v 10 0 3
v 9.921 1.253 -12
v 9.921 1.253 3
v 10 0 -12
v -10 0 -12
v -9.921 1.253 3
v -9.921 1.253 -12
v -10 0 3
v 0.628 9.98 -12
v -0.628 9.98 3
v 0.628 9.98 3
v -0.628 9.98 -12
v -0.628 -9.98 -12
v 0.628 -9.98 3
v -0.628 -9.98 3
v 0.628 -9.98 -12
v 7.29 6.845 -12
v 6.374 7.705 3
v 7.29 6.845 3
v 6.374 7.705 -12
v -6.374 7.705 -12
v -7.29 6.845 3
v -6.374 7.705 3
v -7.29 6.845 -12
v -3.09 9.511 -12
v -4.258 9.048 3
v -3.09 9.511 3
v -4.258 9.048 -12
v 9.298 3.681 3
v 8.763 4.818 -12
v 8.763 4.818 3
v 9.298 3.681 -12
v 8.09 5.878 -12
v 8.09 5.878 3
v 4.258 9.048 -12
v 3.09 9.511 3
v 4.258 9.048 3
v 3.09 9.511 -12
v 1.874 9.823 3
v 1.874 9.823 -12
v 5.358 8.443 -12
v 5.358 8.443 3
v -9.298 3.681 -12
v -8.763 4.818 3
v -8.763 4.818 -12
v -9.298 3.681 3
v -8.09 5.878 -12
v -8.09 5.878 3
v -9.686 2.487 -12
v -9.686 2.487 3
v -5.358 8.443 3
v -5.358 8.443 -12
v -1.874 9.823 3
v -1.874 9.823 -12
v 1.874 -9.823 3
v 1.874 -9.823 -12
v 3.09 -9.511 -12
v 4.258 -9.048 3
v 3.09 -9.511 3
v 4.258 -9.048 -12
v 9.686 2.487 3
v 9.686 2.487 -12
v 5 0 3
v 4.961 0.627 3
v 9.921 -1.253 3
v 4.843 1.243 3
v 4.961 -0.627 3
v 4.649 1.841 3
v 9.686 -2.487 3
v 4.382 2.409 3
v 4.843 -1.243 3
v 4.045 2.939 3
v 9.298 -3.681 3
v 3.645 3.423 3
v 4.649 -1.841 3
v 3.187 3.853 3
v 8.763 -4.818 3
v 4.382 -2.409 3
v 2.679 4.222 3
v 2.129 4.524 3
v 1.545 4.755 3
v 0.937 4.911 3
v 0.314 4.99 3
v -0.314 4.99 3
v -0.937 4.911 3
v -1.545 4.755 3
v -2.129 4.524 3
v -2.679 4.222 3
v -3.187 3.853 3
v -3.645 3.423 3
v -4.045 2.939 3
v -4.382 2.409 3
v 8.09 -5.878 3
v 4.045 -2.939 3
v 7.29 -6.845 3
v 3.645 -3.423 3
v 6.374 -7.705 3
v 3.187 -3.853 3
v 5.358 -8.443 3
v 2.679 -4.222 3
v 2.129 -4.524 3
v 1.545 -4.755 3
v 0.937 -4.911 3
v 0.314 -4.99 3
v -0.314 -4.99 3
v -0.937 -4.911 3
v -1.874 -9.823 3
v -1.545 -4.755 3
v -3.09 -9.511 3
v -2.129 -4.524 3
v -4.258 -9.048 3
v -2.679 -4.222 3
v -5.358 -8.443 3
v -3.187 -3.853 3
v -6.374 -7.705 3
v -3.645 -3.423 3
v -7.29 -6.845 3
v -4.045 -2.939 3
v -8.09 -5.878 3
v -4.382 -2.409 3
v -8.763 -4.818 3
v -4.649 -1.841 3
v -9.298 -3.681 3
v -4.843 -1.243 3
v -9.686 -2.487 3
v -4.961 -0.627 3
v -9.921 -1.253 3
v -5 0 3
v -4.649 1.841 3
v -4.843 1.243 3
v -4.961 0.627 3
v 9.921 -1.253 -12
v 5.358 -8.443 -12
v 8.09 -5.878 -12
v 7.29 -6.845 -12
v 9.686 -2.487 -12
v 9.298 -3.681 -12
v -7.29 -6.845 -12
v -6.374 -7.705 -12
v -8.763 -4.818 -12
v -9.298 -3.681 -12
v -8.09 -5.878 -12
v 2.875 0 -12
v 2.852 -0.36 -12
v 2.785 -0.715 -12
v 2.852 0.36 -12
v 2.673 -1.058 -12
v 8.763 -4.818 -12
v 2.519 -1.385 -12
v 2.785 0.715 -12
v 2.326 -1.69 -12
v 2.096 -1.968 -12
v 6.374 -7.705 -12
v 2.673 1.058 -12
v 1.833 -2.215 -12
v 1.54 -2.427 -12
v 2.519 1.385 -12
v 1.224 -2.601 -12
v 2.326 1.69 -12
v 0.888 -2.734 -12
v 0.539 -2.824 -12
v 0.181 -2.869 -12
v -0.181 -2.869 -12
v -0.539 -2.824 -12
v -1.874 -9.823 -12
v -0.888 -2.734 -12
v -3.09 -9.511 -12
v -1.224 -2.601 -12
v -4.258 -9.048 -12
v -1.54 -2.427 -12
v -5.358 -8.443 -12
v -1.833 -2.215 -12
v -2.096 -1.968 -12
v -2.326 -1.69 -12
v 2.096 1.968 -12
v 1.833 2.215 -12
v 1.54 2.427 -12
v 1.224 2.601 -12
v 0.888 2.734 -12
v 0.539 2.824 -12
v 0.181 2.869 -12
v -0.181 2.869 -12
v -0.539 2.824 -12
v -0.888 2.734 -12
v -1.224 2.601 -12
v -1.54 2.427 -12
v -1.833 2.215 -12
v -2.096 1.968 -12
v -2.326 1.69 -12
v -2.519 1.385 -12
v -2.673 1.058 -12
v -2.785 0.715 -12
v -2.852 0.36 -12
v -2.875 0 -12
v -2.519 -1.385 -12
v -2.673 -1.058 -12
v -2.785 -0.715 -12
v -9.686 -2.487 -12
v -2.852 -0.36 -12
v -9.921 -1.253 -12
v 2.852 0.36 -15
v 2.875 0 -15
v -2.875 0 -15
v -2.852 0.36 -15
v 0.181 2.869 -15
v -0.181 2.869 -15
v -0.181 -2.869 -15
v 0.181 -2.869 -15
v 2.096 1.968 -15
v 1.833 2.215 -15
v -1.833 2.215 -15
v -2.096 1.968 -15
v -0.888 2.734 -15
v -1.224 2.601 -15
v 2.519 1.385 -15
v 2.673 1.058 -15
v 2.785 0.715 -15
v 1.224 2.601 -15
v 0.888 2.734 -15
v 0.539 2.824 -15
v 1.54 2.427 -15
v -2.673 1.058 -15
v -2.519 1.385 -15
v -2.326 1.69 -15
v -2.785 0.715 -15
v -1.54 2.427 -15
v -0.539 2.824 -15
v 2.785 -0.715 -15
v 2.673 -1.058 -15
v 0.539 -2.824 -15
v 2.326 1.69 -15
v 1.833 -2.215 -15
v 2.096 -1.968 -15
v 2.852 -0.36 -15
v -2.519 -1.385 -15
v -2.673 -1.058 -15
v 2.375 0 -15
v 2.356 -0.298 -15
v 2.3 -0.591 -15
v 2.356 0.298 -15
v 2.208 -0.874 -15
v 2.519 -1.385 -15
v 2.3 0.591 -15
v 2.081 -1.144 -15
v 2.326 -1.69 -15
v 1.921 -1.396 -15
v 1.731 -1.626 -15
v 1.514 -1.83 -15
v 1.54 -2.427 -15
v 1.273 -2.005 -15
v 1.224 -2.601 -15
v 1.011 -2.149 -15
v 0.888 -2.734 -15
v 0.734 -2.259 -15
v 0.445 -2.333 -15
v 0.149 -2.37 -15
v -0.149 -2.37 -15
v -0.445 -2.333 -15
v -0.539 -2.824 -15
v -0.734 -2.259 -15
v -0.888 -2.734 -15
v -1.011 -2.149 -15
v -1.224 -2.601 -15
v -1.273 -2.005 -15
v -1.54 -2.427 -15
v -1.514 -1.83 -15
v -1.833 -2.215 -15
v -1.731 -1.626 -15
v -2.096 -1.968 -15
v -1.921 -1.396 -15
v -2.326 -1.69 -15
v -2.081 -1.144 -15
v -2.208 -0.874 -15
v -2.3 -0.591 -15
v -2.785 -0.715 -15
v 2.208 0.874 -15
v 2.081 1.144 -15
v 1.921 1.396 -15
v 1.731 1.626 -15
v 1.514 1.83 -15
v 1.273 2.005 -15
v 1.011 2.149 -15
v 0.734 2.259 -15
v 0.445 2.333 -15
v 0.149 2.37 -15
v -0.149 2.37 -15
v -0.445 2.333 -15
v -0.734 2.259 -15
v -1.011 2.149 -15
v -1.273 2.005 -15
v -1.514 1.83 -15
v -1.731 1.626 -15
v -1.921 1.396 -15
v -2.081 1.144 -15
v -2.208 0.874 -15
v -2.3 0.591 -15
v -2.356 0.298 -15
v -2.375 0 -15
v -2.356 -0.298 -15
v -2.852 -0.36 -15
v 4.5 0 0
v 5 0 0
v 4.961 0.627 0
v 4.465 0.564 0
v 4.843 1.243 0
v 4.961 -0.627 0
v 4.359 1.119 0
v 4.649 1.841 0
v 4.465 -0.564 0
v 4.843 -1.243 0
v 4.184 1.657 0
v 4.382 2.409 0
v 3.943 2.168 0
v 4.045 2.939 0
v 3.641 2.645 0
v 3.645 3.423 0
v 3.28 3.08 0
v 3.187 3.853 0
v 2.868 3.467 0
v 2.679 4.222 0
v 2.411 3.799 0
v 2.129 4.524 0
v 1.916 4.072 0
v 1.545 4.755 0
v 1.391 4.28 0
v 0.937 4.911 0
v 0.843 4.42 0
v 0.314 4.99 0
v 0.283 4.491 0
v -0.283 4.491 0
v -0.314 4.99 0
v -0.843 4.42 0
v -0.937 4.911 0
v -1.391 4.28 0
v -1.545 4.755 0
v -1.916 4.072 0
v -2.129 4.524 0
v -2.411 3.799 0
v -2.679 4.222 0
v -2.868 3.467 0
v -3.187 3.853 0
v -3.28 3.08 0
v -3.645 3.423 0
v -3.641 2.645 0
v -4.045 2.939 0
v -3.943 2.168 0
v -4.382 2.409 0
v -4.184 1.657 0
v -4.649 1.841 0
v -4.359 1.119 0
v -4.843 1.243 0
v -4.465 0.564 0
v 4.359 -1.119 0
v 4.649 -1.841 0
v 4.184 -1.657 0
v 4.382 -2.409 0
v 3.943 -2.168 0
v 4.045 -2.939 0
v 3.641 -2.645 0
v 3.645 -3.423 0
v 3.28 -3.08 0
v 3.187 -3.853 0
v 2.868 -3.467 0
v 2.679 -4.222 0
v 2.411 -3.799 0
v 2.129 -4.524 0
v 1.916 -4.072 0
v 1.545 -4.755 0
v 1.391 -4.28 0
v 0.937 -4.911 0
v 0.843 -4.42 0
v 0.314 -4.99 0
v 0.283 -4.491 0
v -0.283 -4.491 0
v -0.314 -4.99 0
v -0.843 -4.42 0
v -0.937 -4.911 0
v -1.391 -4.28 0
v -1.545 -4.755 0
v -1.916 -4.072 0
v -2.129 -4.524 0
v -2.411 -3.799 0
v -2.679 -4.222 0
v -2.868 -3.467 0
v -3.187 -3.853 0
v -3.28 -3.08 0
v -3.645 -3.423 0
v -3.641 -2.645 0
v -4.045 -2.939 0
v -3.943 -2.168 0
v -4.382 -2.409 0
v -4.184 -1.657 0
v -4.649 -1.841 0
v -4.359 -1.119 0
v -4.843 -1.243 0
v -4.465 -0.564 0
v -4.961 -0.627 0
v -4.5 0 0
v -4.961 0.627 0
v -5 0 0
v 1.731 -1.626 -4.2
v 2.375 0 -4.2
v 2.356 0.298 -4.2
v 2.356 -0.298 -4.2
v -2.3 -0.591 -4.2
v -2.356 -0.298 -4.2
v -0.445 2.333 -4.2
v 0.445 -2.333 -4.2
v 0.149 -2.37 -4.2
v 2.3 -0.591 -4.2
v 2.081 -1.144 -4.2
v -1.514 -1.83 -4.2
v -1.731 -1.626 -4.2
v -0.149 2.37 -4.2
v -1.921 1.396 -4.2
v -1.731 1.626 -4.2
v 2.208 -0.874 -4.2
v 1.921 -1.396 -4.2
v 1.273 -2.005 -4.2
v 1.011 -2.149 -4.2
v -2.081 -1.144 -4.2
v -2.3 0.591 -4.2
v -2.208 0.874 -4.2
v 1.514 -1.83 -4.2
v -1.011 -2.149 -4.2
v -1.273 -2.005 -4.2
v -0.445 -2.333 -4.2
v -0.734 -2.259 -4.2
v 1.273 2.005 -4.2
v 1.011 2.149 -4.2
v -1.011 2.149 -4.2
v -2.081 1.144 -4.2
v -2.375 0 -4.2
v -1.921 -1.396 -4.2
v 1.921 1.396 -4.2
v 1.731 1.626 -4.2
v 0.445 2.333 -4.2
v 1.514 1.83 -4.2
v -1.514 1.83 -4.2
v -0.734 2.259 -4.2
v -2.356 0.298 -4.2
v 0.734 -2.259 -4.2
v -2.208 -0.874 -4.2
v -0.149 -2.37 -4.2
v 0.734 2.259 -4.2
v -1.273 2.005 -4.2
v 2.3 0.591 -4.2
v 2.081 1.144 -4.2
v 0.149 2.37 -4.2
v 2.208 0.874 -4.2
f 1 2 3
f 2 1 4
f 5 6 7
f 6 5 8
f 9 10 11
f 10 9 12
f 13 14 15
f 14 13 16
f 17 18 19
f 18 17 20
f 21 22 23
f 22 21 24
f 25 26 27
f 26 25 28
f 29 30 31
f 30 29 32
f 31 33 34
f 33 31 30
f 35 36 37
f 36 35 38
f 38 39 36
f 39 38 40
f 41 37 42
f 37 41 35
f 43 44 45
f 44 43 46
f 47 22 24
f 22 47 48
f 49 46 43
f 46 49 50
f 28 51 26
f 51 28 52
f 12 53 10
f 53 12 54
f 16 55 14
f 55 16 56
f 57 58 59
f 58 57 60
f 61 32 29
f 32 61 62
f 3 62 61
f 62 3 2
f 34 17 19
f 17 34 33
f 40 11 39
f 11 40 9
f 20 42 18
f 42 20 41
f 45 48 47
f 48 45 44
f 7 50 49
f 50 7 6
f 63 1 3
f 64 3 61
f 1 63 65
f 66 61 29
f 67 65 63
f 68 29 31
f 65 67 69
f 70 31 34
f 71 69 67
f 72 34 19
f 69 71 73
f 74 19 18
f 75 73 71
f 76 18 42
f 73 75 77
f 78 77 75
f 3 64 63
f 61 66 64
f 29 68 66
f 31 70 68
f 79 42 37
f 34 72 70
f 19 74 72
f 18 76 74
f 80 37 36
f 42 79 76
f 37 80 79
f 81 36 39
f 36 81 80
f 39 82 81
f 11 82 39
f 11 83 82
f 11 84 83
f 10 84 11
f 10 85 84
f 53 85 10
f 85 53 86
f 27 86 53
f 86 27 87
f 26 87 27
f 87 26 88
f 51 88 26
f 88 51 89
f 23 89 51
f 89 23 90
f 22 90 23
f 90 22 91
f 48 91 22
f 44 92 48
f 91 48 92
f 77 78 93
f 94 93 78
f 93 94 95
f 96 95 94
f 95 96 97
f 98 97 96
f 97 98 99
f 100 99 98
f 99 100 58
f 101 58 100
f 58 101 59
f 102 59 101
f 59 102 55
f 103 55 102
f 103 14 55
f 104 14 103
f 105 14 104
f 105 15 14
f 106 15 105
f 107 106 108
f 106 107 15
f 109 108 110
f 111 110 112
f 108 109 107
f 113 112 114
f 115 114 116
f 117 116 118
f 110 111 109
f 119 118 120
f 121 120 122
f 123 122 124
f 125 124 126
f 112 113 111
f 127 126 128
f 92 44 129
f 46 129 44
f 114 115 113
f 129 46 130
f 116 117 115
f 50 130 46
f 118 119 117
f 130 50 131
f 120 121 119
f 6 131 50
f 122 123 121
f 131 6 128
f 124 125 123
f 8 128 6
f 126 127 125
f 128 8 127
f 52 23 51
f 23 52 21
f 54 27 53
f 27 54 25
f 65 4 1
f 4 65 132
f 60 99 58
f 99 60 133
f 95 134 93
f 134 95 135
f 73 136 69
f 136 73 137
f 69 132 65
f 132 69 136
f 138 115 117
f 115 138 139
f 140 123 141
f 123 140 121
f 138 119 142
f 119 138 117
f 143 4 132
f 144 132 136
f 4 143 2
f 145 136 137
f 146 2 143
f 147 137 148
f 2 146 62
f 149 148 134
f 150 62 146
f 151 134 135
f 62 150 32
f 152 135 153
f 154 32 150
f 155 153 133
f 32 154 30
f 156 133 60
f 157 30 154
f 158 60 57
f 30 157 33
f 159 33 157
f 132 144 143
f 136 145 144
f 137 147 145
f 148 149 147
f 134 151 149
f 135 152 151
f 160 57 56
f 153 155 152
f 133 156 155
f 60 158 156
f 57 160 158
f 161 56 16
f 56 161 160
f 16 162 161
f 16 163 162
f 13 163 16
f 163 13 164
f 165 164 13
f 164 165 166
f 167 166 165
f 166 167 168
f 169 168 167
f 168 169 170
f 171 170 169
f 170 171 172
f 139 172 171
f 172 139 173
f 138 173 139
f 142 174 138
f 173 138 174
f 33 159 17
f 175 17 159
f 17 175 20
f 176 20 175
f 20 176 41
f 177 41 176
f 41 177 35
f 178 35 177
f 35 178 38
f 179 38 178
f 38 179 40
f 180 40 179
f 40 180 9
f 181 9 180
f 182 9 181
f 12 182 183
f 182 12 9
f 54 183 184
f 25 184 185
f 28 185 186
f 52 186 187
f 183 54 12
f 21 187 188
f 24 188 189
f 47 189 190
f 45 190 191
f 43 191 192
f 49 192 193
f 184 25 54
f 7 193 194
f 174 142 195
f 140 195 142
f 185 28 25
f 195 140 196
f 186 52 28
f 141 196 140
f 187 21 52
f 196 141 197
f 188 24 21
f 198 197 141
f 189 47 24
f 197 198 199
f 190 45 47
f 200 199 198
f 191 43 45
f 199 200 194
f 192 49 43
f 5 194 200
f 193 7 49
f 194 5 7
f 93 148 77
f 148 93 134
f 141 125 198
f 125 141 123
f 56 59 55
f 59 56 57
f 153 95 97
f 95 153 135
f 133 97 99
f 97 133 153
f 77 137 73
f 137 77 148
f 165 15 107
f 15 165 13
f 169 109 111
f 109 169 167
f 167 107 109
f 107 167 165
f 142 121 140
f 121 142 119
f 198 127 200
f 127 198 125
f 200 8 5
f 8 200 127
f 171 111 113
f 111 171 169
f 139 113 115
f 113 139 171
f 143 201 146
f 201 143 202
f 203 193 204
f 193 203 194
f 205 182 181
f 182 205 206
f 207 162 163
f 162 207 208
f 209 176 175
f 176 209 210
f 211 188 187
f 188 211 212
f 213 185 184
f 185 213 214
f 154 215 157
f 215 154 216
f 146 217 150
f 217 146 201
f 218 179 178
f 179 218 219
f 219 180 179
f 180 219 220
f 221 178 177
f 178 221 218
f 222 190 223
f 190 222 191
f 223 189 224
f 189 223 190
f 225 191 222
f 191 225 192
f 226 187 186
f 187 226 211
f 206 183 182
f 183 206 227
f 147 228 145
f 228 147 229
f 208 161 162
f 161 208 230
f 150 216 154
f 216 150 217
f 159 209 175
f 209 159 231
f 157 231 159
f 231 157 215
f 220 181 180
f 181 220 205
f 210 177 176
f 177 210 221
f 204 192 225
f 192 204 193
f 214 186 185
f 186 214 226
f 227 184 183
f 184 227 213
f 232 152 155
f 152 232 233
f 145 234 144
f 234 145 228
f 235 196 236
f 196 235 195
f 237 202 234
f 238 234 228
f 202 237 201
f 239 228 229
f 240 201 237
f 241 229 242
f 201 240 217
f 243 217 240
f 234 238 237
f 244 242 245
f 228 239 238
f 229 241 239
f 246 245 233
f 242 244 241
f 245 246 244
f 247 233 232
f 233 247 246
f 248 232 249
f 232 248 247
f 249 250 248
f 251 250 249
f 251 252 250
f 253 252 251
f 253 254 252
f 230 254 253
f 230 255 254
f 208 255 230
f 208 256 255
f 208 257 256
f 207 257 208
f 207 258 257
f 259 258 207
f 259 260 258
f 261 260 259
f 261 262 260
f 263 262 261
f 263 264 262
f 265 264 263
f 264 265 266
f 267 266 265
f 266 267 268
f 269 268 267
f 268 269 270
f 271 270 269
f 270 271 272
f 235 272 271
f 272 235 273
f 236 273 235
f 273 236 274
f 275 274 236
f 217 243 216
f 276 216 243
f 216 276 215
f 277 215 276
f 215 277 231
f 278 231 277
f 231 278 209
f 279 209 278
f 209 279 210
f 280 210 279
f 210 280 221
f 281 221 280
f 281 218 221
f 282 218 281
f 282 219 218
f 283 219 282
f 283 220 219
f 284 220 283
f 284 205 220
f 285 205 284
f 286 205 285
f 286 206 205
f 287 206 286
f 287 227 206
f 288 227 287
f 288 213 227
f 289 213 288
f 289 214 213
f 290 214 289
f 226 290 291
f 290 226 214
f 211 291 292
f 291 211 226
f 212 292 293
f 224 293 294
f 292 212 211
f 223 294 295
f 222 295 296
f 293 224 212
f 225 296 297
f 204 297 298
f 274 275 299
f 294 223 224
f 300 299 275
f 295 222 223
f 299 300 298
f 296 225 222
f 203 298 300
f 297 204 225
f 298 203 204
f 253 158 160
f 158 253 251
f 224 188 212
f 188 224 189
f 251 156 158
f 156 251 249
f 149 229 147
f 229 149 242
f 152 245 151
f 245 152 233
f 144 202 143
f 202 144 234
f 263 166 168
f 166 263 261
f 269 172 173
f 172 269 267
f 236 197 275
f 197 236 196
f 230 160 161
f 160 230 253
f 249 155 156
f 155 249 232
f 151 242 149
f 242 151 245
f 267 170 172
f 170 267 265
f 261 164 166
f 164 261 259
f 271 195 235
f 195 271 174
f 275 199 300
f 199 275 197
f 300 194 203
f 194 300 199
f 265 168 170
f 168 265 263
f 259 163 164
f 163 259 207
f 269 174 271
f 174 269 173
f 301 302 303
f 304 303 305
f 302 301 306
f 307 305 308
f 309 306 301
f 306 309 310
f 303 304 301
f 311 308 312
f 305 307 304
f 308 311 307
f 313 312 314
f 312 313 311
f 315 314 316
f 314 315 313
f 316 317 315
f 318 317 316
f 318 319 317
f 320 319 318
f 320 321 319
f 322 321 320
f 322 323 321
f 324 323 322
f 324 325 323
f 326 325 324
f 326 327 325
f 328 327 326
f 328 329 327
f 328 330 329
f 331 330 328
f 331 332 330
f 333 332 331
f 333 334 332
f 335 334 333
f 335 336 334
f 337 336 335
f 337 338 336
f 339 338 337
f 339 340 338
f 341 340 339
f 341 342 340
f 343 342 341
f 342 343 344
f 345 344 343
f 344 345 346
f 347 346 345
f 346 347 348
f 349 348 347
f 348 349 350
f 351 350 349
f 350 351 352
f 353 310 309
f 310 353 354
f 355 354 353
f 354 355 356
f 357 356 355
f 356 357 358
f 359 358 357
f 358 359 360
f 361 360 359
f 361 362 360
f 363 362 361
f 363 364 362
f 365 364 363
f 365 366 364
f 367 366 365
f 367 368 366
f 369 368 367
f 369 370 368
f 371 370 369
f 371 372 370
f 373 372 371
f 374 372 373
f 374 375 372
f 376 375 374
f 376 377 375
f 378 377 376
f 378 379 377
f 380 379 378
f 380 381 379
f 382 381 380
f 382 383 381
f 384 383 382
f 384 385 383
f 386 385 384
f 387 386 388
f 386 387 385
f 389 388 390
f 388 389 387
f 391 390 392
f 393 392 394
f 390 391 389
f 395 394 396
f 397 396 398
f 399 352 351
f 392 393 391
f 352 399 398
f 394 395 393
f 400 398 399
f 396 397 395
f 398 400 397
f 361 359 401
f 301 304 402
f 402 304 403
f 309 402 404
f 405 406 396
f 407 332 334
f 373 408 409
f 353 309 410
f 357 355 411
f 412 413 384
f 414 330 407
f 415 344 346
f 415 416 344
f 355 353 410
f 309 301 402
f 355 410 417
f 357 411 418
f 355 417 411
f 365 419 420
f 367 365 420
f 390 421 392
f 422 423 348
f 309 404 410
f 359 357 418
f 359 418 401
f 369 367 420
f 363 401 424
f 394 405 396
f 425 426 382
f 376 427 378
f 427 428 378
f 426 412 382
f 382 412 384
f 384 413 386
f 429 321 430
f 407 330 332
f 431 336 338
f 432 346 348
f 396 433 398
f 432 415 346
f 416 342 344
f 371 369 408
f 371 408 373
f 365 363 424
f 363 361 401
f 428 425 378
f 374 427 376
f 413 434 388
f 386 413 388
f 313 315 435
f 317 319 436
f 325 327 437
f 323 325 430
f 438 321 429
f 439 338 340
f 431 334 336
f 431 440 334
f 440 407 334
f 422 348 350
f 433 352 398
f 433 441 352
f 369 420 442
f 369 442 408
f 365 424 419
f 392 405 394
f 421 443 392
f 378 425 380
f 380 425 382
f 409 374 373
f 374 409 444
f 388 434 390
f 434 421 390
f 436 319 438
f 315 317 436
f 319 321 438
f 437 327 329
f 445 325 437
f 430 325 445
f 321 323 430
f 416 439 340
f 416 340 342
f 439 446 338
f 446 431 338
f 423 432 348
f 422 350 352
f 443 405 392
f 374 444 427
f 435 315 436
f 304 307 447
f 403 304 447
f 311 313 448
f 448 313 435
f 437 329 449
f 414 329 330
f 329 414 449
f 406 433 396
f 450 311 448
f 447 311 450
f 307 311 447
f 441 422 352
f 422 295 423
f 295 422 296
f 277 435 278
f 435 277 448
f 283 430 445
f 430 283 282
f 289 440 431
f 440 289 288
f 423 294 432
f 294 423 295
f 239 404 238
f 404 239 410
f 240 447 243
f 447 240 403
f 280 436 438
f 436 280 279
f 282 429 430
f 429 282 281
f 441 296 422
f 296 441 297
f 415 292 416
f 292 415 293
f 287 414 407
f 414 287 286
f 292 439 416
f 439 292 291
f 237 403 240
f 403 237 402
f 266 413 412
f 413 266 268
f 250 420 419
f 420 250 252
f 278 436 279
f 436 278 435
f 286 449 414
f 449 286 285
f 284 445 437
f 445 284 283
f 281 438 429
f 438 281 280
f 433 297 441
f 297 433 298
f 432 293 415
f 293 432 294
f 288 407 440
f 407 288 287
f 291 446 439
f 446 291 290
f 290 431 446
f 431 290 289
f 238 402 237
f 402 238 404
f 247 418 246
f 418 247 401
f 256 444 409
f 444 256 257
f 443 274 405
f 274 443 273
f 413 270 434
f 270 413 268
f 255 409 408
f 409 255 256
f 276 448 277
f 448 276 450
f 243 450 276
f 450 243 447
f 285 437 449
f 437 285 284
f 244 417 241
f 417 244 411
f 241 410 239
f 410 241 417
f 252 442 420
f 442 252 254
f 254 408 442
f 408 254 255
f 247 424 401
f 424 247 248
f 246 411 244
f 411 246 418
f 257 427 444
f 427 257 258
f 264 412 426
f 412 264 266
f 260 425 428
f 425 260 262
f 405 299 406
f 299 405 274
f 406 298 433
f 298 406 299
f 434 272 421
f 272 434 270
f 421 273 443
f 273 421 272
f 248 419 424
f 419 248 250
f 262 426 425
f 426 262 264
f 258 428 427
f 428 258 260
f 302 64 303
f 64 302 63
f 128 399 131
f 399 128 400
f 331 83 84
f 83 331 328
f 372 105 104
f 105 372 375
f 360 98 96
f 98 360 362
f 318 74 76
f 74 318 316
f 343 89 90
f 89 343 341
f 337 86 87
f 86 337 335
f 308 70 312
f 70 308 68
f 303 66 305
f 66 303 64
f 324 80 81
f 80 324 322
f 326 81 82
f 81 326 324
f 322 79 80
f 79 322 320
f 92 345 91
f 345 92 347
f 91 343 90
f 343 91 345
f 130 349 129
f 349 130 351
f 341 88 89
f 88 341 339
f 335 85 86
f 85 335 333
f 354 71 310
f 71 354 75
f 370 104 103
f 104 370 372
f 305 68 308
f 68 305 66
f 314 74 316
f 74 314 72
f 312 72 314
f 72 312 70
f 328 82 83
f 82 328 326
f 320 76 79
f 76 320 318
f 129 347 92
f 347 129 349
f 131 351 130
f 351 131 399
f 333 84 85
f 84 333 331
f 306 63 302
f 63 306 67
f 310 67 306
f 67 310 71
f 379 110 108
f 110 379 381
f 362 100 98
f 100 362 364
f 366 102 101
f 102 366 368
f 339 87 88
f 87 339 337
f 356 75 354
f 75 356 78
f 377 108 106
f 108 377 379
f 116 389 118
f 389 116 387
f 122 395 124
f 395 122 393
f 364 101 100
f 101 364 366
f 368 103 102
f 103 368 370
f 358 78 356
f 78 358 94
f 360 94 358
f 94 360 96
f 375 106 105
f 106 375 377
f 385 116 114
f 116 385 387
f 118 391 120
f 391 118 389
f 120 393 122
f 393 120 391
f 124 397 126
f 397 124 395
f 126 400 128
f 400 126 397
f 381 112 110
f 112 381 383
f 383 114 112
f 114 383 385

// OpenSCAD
$fn = 50;


difference() {
	union() {
		translate(v = [0, 0, -12.0000000000]) {
			cylinder(h = 15, r = 10.0000000000);
		}
		#translate(v = [0, 0, -15.0000000000]) {
			cylinder(h = 15, r = 2.8750000000);
		}
	}
	union() {
		translate(v = [0, 0, 0]) {
			rotate(a = [0, 0, 0]) {
				difference() {
					union() {
						translate(v = [0, 0, -15.0000000000]) {
							cylinder(h = 15, r = 2.2500000000);
						}
						translate(v = [0, 0, -4.2000000000]) {
							cylinder(h = 4.2000000000, r1 = 2.3750000000, r2 = 4.5000000000);
						}
						translate(v = [0, 0, -15.0000000000]) {
							cylinder(h = 15, r = 2.3750000000);
						}
						translate(v = [0, 0, -15.0000000000]) {
							cylinder(h = 15, r = 2.2500000000);
						}
					}
					union();
				}
			}
		}
		#cylinder(h = 3, r = 5.0000000000);
	}
}
